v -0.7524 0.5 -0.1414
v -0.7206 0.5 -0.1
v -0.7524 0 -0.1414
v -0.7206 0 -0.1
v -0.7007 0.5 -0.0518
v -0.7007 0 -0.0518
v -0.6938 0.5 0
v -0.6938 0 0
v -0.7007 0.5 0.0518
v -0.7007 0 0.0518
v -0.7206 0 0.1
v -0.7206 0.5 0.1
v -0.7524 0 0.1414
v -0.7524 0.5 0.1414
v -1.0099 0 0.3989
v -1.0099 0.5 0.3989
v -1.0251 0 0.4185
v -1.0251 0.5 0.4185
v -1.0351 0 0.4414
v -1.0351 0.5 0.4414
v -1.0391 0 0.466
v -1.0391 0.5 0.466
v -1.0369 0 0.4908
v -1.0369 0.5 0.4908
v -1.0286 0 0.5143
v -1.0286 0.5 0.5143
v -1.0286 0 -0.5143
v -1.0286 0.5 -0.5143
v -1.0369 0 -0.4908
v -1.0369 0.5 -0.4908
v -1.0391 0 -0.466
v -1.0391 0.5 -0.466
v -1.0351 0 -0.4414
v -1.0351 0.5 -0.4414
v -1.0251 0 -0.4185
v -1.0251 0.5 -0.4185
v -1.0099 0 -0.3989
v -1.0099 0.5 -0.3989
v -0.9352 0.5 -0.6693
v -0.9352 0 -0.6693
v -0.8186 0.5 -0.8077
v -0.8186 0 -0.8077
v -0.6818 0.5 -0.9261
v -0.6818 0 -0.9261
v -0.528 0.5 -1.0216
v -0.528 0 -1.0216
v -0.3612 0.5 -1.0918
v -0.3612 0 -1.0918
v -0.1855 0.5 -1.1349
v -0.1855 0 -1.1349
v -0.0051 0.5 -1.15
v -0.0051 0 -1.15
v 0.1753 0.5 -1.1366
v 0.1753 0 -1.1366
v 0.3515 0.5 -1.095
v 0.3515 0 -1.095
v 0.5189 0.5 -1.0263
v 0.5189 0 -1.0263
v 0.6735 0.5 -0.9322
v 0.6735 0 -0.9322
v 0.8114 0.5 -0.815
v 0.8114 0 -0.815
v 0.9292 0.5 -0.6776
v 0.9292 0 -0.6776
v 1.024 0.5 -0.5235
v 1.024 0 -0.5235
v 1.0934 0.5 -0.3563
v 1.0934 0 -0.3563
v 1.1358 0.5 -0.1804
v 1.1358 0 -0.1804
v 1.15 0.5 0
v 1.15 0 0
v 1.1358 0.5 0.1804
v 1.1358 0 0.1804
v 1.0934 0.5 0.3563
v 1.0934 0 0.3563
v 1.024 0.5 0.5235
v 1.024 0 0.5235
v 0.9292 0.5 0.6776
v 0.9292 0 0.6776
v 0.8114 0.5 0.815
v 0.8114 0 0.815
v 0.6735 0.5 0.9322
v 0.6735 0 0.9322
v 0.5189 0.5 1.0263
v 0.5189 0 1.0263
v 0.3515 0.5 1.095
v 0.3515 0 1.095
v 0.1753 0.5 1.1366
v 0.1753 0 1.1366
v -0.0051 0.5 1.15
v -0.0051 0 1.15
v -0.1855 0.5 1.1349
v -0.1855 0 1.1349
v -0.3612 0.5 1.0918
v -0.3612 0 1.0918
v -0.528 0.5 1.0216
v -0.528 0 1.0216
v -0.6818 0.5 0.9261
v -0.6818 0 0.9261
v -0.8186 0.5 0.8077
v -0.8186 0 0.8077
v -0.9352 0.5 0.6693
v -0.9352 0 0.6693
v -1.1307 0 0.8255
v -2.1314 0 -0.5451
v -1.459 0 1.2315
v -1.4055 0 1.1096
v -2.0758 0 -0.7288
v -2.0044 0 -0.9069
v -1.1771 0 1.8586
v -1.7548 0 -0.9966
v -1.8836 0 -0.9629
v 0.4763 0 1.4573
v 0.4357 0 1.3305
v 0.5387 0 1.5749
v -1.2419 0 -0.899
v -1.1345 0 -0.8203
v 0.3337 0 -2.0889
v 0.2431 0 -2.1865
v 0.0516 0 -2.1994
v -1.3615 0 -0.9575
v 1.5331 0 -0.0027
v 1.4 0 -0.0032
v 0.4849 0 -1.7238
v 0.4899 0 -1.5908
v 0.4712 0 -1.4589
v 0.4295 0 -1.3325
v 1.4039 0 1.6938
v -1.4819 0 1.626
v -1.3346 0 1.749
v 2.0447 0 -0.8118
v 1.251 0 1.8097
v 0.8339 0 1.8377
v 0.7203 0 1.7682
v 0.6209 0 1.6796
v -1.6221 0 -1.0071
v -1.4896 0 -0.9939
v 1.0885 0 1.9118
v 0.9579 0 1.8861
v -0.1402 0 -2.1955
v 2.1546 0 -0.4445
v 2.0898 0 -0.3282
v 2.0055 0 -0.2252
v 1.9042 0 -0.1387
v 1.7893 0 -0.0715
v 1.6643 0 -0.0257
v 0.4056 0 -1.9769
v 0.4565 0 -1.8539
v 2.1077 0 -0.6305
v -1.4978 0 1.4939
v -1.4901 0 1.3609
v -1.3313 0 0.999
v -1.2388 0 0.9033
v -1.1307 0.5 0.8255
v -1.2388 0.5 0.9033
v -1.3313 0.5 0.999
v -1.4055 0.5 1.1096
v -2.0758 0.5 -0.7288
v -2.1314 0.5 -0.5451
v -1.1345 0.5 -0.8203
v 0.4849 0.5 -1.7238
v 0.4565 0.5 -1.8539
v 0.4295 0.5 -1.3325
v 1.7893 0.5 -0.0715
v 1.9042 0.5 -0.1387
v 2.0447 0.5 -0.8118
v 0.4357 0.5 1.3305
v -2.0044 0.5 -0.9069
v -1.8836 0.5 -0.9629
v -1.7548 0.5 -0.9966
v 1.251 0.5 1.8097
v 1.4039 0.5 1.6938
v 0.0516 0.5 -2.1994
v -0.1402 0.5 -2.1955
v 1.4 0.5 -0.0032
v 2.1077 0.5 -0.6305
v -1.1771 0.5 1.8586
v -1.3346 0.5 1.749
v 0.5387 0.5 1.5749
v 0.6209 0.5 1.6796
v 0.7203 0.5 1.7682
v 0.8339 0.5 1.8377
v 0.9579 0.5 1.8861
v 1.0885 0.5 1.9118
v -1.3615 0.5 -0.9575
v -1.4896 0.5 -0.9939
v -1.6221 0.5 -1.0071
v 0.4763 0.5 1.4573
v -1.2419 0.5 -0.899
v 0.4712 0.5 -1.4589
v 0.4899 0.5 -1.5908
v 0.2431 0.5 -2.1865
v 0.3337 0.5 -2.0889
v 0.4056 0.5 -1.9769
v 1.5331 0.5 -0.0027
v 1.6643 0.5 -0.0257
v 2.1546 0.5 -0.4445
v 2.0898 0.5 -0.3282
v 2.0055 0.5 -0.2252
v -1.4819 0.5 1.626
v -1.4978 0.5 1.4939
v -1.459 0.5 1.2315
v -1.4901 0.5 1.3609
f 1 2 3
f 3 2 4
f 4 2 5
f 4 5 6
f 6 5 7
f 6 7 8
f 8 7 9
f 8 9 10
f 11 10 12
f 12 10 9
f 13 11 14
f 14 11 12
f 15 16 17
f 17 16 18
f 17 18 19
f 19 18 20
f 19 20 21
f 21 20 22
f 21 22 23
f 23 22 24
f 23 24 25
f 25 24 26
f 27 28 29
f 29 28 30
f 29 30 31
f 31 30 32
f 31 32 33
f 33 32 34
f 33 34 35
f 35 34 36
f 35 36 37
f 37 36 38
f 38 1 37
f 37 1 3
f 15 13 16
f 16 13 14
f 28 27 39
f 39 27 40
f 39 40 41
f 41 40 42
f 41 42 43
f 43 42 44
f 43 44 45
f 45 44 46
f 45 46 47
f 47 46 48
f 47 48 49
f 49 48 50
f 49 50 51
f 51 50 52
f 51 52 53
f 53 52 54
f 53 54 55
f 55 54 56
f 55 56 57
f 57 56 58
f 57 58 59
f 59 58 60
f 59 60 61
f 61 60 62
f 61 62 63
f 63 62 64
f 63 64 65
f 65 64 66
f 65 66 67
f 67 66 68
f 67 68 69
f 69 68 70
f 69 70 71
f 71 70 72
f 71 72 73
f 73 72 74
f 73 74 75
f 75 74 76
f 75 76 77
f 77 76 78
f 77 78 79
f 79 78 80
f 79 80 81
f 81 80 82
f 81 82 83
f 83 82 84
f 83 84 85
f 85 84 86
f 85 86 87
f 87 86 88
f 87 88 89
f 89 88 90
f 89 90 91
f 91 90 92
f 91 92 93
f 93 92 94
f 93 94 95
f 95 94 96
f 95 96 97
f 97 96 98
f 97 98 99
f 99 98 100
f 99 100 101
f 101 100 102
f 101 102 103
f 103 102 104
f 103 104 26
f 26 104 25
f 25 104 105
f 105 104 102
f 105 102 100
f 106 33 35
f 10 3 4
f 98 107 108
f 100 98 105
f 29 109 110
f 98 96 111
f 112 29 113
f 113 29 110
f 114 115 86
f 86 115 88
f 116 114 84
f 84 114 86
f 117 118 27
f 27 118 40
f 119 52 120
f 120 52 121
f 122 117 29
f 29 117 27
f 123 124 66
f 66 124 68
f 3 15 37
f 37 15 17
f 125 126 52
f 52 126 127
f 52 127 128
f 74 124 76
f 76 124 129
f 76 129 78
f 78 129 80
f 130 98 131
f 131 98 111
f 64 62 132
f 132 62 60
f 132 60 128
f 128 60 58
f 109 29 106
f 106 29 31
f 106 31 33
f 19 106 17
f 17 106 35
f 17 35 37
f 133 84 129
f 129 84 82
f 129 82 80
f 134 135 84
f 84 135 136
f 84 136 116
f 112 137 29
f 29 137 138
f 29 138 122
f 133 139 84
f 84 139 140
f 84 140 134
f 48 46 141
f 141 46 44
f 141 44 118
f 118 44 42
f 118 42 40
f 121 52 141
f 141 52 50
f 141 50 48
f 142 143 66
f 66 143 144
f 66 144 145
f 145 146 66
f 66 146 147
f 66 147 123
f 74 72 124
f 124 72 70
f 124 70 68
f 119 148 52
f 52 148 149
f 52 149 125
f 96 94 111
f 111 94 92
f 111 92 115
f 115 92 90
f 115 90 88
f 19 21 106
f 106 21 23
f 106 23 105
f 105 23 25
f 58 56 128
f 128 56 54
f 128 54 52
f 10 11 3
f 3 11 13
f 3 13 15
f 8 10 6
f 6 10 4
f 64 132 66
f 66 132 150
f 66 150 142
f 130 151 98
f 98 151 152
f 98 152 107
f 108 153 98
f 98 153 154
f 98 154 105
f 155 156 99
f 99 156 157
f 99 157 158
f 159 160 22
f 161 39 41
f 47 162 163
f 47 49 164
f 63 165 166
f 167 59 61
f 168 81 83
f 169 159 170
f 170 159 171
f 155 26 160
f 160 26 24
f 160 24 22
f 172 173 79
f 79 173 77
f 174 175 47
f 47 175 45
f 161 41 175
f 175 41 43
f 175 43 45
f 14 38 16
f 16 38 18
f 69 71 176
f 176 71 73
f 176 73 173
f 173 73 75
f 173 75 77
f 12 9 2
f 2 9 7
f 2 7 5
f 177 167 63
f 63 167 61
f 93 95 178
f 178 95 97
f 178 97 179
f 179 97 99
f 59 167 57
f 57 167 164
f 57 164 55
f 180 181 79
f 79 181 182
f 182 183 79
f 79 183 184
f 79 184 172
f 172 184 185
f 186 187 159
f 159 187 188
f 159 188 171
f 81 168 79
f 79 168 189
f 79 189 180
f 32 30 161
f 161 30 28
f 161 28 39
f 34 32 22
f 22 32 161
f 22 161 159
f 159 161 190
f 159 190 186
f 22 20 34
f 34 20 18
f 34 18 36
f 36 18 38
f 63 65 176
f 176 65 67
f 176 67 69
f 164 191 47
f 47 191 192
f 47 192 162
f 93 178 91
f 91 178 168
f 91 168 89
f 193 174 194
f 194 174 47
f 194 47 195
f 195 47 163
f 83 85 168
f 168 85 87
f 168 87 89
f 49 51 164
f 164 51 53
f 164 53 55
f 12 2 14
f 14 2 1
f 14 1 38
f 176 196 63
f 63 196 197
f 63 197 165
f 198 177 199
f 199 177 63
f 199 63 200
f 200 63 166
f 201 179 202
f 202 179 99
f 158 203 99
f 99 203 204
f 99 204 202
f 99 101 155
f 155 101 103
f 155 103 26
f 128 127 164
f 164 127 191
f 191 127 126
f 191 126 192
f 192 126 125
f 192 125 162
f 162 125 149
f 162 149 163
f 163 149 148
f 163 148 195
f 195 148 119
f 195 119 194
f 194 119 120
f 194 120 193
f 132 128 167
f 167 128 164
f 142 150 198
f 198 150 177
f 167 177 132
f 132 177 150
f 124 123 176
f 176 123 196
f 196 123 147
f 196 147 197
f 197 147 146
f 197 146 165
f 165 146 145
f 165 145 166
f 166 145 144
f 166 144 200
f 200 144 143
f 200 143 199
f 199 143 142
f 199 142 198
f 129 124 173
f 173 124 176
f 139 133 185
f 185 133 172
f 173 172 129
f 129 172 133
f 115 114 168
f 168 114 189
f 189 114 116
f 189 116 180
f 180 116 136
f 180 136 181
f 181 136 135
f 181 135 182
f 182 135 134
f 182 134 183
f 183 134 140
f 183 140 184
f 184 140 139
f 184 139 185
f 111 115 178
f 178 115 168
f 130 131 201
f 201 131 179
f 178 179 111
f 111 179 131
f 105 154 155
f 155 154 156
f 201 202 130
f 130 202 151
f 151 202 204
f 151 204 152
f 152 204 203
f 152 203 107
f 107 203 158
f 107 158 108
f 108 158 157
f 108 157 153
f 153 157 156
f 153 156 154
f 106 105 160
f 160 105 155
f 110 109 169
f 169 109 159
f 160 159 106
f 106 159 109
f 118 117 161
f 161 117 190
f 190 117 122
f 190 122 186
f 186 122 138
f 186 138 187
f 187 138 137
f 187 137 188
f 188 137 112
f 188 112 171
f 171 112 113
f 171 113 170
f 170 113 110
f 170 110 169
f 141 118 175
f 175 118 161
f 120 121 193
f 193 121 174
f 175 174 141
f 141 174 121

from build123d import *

# Parameters (mm, degrees)
BOSS_EXTRUDE1_DEPTH = 0.5
CUT_EXTRUDE1_REACH  = 2.5
FILLET1_R           = 0.1
FILLET2_R           = 0.2


with BuildPart() as part:
    # Sketch1 → Boss-Extrude1 (new body)
    with BuildSketch(Plane(origin=(0, 0, 0), x_dir=(1, 0, 0), z_dir=(0, 1, 0))):
        with BuildLine():
            Line((-1.130713076, -0.825522828), (-2.131397859, 0.545108401))
            ThreePointArc((-2.131397859, 0.545108401), (-2.07578756, 0.7287702), (-2.004384052, 0.906887298))
            ThreePointArc((-2.004384052, 0.906887298), (-1.555532522, 1.003410855), (-1.134528421, 0.820271456))
            Line((-1.134528421, 0.820271456), (-0.140209263, 2.195527582))
            ThreePointArc((-0.140209263, 2.195527582), (0.051648015, 2.199393662), (0.243112339, 2.186526101))
            ThreePointArc((0.243112339, 2.186526101), (0.473614448, 1.789470348), (0.42953595, 1.332478468))
            Line((0.42953595, 1.332478468), (2.044743768, 0.811802268))
            ThreePointArc((2.044743768, 0.811802268), (2.107707789, 0.630529838), (2.154635741, 0.444460149))
            ThreePointArc((2.154635741, 0.444460149), (1.848242349, 0.102542642), (1.399996238, 0.003245527))
            Line((1.399996238, 0.003245527), (1.40393041, -1.693806188))
            ThreePointArc((1.40393041, -1.693806188), (1.250987037, -1.809704792), (1.088525782, -1.911834622))
            ThreePointArc((1.088525782, -1.911834622), (0.668662143, -1.726095511), (0.435709309, -1.330472622))
            Line((0.435709309, -1.330472622), (-1.177067057, -1.858632063))
            ThreePointArc((-1.177067057, -1.858632063), (-1.33455528, -1.748988909), (-1.48188981, -1.626038927))
            ThreePointArc((-1.48188981, -1.626038927), (-1.434986417, -1.169328335), (-1.130713076, -0.825522828))
        make_face()
    extrude(amount=BOSS_EXTRUDE1_DEPTH)

    # Sketch2 → Cut-Extrude1 (cut, up to next)
    with BuildSketch(Plane(origin=(0, 0.5, 0), x_dir=(1, 0, 0), z_dir=(0, 1, 0)), mode=Mode.PRIVATE) as cut_extrude1_sk1:
        with BuildLine():
            Line((-1.059104505, 0.448104505), (-0.611, 0))
            Line((-0.611, 0), (-1.059104505, -0.448104505))
            ThreePointArc((-1.059104505, -0.448104505), (1.15, 0), (-1.059104505, 0.448104505))
        make_face()
    cut_extrude1_tool1 = extrude(cut_extrude1_sk1.sketch, amount=-CUT_EXTRUDE1_REACH, mode=Mode.PRIVATE) & part.part
    add(cut_extrude1_tool1.solids().sort_by_distance((0.062233, 0.5, 0))[0], mode=Mode.SUBTRACT)

    # Fillet1
    fillet1_edges = [part.edges().sort_by_distance(p)[0] for p in [
        (-1.059104505, 0.25, -0.448104505),
        (-1.059104505, 0.25, 0.448104505),
    ]]
    fillet(fillet1_edges, radius=FILLET1_R)

    # Fillet2
    fillet2_edges = [part.edges().sort_by_distance(p)[0] for p in [
        (-0.611, 0.25, 0),
    ]]
    fillet(fillet2_edges, radius=FILLET2_R)


solid = part.part
